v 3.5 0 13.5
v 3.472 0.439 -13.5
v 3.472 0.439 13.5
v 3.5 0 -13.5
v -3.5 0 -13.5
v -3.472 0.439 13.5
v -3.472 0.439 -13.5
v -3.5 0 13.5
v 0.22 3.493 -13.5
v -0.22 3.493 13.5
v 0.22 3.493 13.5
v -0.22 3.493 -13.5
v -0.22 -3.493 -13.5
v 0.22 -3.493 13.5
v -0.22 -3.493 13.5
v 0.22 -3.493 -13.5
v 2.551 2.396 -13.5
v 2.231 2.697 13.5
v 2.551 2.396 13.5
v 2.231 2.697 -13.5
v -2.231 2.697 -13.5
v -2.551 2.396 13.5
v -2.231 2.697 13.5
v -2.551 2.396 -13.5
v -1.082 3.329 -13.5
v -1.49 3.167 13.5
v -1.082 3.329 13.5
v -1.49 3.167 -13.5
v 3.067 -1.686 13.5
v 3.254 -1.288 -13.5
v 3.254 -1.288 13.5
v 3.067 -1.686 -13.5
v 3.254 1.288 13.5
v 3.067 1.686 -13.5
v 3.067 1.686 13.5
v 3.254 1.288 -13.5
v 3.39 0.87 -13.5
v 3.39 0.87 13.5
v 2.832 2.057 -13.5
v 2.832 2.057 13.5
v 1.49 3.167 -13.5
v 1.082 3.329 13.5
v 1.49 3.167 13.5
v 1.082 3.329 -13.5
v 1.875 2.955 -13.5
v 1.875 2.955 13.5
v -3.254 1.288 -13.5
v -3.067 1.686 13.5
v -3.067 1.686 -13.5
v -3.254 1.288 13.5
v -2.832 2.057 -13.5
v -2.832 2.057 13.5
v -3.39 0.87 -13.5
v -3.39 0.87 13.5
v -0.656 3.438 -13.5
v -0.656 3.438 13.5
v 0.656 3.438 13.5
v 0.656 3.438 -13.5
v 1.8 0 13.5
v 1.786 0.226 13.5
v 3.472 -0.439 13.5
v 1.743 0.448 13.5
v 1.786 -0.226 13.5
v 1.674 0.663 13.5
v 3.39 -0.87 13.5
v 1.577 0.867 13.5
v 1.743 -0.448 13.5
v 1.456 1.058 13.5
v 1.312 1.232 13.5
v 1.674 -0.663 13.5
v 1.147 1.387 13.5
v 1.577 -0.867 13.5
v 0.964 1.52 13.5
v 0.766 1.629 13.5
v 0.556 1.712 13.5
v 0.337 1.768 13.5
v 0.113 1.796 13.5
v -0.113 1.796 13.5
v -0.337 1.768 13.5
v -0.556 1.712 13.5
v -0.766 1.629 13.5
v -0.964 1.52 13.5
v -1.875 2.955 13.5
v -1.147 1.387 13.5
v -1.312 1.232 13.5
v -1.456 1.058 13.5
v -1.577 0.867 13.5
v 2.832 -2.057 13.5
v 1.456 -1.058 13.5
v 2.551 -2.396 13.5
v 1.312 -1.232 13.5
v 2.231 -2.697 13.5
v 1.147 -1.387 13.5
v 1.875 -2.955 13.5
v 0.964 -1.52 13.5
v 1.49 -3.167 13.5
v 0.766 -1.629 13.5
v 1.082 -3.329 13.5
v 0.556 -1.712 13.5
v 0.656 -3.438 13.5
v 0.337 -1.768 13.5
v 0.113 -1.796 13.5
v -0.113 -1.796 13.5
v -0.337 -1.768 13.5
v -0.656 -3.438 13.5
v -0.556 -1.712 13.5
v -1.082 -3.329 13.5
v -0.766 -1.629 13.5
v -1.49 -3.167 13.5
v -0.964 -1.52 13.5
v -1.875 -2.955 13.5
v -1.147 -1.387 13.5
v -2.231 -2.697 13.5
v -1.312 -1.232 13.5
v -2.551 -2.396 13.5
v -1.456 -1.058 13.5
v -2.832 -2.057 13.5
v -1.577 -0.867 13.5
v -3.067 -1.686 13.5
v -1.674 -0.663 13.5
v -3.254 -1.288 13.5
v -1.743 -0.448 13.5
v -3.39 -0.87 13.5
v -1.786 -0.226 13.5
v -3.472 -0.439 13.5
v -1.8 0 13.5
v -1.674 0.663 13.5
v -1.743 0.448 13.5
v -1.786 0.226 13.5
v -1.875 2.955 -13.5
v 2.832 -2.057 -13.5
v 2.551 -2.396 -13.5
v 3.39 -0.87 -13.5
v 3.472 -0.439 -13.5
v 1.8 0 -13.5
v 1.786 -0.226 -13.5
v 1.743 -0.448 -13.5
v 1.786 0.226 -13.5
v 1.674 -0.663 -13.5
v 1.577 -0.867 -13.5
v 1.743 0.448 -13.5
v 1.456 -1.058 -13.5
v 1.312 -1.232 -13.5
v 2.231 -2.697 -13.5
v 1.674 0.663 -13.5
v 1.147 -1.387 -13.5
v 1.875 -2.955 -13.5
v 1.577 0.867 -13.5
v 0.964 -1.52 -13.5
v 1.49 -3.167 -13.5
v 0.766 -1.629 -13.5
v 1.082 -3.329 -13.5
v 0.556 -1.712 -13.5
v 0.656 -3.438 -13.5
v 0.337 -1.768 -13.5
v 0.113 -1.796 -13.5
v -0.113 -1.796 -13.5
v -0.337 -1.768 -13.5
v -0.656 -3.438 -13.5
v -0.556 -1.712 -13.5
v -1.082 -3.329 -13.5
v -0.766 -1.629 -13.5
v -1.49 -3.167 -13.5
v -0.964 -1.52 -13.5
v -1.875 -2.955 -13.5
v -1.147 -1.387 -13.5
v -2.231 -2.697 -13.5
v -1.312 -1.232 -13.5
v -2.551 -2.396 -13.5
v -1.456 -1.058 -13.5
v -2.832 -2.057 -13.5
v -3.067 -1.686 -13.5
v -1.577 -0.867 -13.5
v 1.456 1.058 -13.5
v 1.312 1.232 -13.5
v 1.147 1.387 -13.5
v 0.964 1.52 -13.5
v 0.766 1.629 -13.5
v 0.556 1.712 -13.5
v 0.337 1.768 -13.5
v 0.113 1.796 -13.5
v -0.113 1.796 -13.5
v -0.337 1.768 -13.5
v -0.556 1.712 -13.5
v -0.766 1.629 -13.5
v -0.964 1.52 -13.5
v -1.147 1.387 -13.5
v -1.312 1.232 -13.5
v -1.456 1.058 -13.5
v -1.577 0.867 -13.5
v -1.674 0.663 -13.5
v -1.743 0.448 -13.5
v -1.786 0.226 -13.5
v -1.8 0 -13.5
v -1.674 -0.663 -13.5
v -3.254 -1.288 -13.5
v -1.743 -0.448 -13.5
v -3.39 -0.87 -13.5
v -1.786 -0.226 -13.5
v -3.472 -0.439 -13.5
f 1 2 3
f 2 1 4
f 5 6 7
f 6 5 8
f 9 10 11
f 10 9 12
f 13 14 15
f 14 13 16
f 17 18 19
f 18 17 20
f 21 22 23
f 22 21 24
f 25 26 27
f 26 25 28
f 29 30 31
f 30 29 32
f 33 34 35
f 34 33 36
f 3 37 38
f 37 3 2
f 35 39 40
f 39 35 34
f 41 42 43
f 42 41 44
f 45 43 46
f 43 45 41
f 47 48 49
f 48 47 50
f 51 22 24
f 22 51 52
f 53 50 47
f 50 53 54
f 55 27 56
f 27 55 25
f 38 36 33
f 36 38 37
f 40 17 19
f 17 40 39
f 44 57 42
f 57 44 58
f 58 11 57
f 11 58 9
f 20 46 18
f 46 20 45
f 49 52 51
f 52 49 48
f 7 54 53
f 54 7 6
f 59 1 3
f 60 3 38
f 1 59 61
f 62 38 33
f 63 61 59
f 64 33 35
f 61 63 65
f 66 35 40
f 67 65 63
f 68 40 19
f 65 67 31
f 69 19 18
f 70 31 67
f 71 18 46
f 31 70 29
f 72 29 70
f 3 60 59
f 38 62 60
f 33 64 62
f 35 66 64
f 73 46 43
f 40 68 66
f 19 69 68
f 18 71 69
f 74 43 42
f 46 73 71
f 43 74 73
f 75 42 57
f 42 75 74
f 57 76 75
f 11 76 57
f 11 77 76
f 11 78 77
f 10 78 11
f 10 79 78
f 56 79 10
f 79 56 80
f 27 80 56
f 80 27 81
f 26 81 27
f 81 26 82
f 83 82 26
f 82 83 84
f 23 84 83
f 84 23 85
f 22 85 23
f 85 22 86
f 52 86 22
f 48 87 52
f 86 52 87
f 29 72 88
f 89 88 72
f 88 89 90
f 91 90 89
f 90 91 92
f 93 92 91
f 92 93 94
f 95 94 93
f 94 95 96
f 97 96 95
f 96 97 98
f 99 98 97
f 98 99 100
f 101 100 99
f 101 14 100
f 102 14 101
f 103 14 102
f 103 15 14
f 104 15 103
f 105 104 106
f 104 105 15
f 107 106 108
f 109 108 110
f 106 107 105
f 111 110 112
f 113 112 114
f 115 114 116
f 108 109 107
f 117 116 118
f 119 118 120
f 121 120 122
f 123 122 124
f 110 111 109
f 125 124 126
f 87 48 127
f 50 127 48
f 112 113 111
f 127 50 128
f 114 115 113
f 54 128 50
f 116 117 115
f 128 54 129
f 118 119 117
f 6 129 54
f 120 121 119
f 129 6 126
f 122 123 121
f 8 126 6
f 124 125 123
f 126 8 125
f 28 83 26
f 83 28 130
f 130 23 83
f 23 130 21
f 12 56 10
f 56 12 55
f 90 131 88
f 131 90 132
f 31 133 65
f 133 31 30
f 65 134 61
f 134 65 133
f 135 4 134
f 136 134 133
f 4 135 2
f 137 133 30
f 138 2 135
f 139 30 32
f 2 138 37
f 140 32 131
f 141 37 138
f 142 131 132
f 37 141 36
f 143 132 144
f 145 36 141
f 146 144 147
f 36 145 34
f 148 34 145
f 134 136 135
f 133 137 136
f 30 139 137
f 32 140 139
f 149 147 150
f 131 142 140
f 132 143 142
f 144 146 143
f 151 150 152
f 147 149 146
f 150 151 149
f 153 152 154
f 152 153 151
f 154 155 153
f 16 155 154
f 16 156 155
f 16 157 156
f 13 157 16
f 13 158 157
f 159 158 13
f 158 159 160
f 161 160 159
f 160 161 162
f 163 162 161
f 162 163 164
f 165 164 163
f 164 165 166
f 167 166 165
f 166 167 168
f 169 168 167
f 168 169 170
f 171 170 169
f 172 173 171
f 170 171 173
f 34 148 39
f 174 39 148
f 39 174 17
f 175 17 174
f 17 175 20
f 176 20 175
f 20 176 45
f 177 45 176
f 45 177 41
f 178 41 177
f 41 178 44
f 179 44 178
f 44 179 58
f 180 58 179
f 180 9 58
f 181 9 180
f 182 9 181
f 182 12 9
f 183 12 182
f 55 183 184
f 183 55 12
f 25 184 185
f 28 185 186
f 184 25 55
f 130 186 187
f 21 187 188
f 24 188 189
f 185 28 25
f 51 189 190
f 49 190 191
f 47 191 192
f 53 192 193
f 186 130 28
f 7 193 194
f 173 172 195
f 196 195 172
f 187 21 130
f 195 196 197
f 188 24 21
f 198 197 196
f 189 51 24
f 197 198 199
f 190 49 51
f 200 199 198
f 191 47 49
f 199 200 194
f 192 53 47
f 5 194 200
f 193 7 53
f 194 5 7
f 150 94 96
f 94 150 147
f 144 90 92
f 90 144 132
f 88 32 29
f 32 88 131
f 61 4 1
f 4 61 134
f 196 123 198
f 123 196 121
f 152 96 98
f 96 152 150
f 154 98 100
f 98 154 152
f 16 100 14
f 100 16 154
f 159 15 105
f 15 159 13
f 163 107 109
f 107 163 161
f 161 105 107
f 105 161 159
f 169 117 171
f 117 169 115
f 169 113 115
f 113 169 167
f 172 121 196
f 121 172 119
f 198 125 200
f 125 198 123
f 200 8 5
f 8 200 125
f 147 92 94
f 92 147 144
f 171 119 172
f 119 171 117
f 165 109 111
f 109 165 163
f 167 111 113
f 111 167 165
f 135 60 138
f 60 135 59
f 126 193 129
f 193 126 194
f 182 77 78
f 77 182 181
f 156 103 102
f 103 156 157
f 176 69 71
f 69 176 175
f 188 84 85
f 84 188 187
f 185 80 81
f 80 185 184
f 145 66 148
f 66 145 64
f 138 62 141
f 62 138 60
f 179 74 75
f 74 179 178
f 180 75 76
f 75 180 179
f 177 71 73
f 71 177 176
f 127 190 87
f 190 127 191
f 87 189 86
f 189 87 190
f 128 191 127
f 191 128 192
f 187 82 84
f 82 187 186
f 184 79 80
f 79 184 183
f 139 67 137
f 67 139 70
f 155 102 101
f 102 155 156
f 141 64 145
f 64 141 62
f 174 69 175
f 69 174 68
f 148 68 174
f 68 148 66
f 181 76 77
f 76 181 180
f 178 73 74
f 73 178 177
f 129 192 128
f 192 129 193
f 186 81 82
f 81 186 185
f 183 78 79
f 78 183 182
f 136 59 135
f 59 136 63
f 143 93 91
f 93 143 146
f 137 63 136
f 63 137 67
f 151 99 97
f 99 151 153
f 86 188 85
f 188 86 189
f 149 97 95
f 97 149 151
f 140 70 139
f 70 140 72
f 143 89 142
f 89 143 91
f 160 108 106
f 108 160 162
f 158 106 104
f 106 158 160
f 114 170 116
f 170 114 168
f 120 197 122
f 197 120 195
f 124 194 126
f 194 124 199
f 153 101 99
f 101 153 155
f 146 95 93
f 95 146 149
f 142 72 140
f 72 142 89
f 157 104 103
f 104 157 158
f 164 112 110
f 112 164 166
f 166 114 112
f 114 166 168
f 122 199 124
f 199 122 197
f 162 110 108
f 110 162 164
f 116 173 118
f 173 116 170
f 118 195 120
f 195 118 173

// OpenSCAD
$fn = 50;


difference() {
	union() {
		translate(v = [0, 0, -13.5000000000]) {
			cylinder(h = 27, r = 3.5000000000);
		}
	}
	union() {
		translate(v = [0, 0, -100.0000000000]) {
			cylinder(h = 200, r = 1.8000000000);
		}
	}
}
